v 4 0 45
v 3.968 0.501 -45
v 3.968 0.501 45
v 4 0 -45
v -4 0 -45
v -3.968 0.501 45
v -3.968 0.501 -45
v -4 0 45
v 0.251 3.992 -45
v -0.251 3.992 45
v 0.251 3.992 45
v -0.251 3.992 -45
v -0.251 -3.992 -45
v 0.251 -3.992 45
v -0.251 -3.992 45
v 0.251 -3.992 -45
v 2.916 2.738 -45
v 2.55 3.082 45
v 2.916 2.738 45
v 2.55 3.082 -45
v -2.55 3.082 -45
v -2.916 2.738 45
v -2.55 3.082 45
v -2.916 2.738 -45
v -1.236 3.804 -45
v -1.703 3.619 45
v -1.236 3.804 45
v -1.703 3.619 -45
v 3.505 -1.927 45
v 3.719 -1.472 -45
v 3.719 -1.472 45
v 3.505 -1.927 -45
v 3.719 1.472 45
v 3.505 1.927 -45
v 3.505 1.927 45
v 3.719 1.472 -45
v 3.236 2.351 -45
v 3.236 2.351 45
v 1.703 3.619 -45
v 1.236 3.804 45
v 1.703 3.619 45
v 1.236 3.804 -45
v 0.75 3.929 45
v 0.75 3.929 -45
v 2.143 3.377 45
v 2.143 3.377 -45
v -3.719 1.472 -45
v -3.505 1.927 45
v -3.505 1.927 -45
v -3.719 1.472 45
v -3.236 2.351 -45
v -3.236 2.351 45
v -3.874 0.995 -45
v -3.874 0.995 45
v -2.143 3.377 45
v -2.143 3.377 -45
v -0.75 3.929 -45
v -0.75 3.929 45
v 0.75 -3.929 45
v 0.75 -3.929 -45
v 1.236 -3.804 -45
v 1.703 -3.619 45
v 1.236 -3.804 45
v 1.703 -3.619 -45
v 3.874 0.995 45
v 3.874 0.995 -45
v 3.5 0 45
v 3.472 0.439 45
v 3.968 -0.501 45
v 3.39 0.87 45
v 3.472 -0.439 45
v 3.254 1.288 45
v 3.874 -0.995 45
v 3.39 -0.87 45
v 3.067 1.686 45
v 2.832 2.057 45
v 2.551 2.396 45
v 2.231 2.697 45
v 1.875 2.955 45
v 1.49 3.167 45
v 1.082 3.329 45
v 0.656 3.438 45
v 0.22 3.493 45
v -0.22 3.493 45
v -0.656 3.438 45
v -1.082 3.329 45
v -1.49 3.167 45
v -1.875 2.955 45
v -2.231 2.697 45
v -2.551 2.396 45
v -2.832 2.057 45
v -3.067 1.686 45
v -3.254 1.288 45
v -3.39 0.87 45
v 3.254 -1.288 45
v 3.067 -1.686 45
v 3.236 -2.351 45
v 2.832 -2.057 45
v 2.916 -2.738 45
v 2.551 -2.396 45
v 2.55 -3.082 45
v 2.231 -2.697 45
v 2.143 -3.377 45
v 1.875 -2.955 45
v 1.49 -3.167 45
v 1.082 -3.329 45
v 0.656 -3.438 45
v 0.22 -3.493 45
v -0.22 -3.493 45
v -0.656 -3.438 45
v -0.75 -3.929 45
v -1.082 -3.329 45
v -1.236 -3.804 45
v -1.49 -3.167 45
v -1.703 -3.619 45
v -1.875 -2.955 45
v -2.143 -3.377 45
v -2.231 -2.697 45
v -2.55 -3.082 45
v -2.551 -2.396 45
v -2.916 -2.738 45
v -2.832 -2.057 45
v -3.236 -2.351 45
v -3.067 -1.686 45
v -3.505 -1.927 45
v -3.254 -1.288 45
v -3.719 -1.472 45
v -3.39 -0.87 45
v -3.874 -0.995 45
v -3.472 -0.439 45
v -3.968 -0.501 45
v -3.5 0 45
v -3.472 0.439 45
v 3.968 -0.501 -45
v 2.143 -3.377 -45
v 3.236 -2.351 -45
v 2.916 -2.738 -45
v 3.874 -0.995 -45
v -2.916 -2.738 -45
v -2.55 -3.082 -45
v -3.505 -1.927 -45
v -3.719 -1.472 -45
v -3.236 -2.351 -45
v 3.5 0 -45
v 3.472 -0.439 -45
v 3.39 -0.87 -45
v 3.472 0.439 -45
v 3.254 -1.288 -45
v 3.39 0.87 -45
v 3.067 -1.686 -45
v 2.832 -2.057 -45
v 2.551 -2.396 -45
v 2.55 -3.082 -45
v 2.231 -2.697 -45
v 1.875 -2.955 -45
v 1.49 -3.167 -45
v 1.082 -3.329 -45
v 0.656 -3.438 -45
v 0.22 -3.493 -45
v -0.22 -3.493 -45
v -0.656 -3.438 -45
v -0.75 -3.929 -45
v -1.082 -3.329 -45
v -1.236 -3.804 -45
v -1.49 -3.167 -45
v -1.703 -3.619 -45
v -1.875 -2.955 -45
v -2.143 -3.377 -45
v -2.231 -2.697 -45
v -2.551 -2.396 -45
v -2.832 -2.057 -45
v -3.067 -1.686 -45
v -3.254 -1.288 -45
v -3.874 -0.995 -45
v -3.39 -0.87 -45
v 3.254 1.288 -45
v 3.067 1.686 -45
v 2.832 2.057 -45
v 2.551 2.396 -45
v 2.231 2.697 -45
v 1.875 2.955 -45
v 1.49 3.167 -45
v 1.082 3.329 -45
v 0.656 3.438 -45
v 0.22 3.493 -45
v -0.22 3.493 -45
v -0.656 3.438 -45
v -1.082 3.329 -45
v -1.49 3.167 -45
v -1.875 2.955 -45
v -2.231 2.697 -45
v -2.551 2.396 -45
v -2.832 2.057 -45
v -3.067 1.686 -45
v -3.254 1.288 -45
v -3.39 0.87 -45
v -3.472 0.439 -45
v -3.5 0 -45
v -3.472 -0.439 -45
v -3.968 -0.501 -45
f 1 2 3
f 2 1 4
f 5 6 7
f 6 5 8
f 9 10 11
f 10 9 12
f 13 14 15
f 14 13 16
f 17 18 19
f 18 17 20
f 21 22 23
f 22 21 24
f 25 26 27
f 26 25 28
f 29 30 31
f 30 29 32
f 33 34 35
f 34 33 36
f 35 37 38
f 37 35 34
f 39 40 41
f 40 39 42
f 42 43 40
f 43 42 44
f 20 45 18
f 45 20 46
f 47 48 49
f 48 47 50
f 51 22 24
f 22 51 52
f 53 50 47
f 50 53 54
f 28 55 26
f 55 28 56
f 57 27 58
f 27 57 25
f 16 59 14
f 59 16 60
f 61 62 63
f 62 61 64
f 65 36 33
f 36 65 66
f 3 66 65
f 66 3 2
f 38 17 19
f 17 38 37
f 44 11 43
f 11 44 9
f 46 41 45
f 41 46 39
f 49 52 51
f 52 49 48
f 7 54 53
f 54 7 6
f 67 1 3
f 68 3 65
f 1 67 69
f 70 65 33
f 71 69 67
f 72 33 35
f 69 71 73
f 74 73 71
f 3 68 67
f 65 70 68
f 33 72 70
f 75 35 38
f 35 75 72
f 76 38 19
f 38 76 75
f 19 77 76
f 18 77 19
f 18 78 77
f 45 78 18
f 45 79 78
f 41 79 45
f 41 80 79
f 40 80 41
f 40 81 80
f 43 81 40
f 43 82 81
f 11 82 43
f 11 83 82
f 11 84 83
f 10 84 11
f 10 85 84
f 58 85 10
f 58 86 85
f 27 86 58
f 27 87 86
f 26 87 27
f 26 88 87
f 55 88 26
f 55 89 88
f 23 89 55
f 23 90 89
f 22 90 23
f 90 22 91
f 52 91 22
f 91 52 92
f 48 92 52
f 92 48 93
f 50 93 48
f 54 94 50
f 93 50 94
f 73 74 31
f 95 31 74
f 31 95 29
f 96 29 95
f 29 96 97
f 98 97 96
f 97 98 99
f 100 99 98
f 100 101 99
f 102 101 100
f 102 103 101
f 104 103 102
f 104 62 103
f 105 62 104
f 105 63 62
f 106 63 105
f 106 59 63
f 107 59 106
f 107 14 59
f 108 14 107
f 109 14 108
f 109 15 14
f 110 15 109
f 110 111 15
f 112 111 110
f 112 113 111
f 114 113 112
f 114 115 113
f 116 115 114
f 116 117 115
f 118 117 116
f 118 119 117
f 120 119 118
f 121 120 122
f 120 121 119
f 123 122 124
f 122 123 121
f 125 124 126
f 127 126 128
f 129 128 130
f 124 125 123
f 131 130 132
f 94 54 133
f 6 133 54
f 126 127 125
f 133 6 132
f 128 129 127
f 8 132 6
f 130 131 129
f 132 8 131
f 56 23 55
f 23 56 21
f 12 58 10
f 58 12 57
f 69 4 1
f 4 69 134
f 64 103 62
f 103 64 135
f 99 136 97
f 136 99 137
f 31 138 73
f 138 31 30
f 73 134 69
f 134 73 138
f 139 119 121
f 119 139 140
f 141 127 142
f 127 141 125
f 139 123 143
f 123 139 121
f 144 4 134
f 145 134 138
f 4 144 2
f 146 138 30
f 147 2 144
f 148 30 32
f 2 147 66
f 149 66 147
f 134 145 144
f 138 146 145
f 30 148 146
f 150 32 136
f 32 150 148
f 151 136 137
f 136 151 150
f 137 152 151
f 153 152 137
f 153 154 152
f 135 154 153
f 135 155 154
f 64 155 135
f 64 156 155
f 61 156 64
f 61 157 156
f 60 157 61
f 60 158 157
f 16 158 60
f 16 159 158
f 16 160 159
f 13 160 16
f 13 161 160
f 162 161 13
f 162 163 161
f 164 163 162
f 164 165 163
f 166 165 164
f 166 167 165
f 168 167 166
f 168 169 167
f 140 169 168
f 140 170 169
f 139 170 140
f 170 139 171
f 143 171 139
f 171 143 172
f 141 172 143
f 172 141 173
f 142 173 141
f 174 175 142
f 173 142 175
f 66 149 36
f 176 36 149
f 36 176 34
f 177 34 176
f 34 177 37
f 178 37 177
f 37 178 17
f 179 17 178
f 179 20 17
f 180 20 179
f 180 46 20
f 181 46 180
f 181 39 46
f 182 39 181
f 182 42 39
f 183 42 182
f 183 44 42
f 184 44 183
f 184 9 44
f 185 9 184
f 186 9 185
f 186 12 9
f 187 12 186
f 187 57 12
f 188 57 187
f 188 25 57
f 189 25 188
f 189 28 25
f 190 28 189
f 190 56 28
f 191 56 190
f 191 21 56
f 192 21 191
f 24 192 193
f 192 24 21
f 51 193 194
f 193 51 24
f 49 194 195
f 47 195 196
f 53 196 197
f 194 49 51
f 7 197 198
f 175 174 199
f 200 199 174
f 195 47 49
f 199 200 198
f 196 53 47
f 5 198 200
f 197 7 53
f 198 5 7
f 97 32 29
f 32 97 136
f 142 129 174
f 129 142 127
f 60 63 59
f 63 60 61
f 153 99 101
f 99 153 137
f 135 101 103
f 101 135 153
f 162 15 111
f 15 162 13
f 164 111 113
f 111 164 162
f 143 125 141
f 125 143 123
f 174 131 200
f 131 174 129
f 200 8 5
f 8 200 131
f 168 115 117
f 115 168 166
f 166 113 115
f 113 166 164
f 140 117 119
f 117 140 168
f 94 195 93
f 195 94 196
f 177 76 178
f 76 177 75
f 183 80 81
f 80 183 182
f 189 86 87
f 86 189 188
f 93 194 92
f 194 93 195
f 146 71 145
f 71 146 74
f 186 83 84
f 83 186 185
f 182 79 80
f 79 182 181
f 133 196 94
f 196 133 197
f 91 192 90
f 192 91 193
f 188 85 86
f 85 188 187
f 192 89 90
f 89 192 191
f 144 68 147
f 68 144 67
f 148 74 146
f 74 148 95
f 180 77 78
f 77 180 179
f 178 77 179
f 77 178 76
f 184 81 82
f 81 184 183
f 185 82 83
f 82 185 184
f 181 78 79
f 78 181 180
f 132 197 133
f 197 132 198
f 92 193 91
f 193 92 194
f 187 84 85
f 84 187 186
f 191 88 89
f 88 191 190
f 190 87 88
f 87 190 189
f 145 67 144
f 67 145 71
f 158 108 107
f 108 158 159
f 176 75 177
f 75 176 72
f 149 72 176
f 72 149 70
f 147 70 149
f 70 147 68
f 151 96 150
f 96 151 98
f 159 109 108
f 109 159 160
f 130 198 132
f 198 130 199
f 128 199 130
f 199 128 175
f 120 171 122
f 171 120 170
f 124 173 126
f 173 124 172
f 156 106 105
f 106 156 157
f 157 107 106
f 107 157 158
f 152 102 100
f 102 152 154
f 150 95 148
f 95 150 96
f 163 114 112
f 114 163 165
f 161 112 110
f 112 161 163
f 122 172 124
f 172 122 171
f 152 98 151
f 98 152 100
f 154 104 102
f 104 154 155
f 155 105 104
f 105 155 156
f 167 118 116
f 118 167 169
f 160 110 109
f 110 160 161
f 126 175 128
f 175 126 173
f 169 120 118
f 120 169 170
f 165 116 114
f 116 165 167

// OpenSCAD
$fn = 50;


difference() {
	union() {
		translate(v = [0, 0, -45.0000000000]) {
			cylinder(h = 90, r = 4.0000000000);
		}
	}
	union() {
		translate(v = [0, 0, -100.0000000000]) {
			cylinder(h = 200, r = 3.5000000000);
		}
	}
}
